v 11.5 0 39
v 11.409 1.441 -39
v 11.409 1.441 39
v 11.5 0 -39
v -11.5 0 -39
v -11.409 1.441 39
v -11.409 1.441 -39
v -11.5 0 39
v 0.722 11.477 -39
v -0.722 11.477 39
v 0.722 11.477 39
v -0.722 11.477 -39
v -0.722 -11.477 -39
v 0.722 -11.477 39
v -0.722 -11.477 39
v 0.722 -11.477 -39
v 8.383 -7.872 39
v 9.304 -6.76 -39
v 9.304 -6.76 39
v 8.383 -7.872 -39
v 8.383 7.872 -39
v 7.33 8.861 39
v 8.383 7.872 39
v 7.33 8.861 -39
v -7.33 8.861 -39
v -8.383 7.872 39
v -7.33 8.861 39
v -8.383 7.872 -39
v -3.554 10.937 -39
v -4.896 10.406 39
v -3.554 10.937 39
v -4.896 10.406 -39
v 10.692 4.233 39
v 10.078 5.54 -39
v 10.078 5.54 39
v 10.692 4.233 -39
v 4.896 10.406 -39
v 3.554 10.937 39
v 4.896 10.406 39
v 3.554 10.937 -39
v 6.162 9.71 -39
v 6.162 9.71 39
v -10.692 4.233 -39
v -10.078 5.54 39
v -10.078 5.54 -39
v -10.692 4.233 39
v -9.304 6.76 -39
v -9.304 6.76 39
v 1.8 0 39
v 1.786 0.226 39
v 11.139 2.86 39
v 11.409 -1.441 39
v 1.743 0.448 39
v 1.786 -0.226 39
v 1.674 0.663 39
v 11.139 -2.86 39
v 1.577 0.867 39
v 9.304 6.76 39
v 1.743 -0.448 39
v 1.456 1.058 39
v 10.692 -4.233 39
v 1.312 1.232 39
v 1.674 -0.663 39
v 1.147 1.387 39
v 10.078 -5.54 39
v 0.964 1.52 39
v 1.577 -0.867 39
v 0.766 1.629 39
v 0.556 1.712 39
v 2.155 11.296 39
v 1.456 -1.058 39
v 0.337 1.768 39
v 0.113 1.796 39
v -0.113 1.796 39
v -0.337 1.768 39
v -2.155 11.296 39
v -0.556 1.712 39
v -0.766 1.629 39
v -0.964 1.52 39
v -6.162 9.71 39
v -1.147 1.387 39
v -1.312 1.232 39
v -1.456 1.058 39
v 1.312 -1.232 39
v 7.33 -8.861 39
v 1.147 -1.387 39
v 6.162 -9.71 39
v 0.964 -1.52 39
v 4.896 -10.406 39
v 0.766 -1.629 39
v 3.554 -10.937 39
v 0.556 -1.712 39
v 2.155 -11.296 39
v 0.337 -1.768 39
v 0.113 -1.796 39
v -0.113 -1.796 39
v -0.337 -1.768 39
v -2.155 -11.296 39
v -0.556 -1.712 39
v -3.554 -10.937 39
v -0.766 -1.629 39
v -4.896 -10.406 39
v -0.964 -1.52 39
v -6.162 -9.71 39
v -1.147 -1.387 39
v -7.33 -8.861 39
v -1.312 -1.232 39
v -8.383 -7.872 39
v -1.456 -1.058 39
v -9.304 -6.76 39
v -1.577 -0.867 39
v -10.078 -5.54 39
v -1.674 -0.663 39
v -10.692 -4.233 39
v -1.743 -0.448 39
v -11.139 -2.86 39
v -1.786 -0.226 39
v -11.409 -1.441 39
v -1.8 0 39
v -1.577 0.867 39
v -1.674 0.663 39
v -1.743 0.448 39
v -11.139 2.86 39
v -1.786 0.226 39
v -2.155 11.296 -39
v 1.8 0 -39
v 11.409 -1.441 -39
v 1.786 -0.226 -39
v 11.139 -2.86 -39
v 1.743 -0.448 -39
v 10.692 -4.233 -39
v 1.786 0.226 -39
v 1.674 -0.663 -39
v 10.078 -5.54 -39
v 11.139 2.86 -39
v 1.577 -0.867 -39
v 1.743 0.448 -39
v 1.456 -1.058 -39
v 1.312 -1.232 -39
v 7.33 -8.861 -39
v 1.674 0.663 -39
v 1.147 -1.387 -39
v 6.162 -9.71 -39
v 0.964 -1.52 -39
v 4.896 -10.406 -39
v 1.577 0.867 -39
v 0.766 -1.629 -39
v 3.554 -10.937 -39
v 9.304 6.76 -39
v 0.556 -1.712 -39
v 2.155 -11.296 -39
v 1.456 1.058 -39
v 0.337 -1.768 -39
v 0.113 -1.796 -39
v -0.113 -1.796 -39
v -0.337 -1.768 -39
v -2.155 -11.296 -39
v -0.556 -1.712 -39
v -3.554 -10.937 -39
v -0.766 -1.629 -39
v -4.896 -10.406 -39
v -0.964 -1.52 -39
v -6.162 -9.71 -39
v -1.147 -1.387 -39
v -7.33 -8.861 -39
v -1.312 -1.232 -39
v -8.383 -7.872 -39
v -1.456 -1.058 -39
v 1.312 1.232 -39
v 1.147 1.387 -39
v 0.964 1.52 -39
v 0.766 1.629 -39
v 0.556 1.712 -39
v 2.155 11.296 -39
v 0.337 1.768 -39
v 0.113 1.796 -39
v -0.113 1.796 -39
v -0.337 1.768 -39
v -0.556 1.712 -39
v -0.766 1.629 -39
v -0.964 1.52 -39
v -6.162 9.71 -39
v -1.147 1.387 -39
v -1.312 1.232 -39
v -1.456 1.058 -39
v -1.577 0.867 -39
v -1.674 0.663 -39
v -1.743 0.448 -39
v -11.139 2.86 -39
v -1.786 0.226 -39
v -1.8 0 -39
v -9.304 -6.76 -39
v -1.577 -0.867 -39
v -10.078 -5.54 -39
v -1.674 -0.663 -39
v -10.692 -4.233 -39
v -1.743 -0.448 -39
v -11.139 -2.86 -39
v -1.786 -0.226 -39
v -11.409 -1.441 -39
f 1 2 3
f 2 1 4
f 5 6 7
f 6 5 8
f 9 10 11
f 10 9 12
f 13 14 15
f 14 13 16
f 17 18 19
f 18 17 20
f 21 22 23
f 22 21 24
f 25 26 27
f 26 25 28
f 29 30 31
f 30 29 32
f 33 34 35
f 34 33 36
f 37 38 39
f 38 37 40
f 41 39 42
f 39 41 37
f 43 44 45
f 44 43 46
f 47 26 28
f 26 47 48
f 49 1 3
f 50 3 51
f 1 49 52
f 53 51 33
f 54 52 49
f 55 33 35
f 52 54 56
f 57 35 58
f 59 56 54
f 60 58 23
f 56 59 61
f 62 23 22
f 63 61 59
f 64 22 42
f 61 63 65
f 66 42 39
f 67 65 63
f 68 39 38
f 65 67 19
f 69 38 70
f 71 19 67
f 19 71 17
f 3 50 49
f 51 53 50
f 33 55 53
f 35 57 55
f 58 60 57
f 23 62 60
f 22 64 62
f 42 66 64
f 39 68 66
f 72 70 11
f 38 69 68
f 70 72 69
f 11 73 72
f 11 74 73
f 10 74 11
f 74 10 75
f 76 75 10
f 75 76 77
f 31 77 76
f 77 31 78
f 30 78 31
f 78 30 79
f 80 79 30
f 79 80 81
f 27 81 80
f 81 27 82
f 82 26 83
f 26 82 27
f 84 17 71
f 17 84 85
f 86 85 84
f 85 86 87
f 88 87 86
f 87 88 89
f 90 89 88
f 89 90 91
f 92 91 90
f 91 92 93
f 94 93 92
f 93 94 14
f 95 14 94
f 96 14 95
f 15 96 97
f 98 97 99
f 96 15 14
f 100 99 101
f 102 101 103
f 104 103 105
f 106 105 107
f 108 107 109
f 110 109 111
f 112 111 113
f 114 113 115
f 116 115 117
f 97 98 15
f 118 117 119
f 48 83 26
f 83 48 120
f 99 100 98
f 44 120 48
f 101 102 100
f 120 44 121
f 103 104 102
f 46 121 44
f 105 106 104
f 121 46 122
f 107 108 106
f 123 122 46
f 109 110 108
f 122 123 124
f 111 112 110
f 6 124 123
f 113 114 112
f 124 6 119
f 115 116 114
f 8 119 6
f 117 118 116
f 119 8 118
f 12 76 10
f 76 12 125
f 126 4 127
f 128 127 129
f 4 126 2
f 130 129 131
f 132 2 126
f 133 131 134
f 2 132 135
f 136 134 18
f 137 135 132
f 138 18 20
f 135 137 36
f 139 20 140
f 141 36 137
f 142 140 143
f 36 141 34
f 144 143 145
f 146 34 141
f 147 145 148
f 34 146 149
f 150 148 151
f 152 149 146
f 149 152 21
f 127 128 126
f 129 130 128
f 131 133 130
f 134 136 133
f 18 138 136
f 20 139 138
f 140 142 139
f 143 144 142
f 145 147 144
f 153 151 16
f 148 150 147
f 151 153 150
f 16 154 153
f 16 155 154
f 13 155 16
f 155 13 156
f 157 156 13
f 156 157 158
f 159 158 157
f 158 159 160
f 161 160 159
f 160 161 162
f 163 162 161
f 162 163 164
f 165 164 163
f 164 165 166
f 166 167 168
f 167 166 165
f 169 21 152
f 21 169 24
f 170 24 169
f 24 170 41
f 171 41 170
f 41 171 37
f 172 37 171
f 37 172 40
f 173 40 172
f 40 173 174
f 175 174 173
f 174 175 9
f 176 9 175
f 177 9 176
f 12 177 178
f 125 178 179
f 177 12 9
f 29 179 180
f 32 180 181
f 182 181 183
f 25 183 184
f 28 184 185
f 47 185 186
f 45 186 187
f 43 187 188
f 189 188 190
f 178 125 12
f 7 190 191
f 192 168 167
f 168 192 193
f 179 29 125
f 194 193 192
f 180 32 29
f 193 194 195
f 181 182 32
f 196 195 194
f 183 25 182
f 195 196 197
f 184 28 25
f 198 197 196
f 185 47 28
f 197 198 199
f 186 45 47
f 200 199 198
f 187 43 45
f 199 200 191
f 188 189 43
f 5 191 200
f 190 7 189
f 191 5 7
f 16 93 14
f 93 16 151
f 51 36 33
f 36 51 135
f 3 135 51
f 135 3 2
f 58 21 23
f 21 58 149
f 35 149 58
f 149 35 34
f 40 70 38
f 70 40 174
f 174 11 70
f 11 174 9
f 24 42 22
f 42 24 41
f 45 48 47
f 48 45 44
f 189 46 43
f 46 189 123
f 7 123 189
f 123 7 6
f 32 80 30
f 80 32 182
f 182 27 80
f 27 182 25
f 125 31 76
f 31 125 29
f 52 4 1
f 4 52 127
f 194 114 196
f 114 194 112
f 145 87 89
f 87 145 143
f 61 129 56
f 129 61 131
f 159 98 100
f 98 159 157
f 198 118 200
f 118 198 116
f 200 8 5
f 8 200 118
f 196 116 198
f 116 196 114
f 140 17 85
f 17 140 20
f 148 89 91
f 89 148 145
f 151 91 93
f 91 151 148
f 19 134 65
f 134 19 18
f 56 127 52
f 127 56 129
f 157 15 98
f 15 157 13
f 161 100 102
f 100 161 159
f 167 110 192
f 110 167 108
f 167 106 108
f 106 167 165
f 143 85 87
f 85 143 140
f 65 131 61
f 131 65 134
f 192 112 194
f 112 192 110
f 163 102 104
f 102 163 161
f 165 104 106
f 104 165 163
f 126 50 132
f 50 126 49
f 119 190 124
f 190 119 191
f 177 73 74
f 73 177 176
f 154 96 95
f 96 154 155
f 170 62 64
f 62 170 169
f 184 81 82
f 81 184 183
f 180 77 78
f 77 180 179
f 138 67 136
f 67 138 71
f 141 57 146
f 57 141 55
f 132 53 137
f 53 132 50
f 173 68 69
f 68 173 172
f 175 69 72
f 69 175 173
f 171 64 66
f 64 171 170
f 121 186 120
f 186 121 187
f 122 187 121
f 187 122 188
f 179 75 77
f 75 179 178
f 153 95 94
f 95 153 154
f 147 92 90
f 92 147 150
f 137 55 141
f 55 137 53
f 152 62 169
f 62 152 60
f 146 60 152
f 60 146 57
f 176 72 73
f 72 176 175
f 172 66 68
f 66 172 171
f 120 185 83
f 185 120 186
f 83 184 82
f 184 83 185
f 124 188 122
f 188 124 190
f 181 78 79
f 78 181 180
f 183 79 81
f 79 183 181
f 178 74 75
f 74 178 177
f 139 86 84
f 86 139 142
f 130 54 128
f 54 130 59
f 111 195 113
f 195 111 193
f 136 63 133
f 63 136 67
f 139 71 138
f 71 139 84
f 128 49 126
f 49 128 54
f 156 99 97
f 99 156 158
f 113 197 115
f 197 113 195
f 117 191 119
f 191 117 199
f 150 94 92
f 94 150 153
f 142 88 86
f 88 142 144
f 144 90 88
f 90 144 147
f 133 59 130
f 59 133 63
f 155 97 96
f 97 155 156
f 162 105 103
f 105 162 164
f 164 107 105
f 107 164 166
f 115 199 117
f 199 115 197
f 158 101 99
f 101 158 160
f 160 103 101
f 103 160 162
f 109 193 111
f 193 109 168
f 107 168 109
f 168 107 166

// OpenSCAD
$fn = 50;


difference() {
	union() {
		translate(v = [0, 0, -39.0000000000]) {
			cylinder(h = 78, r = 11.5000000000);
		}
	}
	union() {
		translate(v = [0, 0, -100.0000000000]) {
			cylinder(h = 200, r = 1.8000000000);
		}
	}
}
